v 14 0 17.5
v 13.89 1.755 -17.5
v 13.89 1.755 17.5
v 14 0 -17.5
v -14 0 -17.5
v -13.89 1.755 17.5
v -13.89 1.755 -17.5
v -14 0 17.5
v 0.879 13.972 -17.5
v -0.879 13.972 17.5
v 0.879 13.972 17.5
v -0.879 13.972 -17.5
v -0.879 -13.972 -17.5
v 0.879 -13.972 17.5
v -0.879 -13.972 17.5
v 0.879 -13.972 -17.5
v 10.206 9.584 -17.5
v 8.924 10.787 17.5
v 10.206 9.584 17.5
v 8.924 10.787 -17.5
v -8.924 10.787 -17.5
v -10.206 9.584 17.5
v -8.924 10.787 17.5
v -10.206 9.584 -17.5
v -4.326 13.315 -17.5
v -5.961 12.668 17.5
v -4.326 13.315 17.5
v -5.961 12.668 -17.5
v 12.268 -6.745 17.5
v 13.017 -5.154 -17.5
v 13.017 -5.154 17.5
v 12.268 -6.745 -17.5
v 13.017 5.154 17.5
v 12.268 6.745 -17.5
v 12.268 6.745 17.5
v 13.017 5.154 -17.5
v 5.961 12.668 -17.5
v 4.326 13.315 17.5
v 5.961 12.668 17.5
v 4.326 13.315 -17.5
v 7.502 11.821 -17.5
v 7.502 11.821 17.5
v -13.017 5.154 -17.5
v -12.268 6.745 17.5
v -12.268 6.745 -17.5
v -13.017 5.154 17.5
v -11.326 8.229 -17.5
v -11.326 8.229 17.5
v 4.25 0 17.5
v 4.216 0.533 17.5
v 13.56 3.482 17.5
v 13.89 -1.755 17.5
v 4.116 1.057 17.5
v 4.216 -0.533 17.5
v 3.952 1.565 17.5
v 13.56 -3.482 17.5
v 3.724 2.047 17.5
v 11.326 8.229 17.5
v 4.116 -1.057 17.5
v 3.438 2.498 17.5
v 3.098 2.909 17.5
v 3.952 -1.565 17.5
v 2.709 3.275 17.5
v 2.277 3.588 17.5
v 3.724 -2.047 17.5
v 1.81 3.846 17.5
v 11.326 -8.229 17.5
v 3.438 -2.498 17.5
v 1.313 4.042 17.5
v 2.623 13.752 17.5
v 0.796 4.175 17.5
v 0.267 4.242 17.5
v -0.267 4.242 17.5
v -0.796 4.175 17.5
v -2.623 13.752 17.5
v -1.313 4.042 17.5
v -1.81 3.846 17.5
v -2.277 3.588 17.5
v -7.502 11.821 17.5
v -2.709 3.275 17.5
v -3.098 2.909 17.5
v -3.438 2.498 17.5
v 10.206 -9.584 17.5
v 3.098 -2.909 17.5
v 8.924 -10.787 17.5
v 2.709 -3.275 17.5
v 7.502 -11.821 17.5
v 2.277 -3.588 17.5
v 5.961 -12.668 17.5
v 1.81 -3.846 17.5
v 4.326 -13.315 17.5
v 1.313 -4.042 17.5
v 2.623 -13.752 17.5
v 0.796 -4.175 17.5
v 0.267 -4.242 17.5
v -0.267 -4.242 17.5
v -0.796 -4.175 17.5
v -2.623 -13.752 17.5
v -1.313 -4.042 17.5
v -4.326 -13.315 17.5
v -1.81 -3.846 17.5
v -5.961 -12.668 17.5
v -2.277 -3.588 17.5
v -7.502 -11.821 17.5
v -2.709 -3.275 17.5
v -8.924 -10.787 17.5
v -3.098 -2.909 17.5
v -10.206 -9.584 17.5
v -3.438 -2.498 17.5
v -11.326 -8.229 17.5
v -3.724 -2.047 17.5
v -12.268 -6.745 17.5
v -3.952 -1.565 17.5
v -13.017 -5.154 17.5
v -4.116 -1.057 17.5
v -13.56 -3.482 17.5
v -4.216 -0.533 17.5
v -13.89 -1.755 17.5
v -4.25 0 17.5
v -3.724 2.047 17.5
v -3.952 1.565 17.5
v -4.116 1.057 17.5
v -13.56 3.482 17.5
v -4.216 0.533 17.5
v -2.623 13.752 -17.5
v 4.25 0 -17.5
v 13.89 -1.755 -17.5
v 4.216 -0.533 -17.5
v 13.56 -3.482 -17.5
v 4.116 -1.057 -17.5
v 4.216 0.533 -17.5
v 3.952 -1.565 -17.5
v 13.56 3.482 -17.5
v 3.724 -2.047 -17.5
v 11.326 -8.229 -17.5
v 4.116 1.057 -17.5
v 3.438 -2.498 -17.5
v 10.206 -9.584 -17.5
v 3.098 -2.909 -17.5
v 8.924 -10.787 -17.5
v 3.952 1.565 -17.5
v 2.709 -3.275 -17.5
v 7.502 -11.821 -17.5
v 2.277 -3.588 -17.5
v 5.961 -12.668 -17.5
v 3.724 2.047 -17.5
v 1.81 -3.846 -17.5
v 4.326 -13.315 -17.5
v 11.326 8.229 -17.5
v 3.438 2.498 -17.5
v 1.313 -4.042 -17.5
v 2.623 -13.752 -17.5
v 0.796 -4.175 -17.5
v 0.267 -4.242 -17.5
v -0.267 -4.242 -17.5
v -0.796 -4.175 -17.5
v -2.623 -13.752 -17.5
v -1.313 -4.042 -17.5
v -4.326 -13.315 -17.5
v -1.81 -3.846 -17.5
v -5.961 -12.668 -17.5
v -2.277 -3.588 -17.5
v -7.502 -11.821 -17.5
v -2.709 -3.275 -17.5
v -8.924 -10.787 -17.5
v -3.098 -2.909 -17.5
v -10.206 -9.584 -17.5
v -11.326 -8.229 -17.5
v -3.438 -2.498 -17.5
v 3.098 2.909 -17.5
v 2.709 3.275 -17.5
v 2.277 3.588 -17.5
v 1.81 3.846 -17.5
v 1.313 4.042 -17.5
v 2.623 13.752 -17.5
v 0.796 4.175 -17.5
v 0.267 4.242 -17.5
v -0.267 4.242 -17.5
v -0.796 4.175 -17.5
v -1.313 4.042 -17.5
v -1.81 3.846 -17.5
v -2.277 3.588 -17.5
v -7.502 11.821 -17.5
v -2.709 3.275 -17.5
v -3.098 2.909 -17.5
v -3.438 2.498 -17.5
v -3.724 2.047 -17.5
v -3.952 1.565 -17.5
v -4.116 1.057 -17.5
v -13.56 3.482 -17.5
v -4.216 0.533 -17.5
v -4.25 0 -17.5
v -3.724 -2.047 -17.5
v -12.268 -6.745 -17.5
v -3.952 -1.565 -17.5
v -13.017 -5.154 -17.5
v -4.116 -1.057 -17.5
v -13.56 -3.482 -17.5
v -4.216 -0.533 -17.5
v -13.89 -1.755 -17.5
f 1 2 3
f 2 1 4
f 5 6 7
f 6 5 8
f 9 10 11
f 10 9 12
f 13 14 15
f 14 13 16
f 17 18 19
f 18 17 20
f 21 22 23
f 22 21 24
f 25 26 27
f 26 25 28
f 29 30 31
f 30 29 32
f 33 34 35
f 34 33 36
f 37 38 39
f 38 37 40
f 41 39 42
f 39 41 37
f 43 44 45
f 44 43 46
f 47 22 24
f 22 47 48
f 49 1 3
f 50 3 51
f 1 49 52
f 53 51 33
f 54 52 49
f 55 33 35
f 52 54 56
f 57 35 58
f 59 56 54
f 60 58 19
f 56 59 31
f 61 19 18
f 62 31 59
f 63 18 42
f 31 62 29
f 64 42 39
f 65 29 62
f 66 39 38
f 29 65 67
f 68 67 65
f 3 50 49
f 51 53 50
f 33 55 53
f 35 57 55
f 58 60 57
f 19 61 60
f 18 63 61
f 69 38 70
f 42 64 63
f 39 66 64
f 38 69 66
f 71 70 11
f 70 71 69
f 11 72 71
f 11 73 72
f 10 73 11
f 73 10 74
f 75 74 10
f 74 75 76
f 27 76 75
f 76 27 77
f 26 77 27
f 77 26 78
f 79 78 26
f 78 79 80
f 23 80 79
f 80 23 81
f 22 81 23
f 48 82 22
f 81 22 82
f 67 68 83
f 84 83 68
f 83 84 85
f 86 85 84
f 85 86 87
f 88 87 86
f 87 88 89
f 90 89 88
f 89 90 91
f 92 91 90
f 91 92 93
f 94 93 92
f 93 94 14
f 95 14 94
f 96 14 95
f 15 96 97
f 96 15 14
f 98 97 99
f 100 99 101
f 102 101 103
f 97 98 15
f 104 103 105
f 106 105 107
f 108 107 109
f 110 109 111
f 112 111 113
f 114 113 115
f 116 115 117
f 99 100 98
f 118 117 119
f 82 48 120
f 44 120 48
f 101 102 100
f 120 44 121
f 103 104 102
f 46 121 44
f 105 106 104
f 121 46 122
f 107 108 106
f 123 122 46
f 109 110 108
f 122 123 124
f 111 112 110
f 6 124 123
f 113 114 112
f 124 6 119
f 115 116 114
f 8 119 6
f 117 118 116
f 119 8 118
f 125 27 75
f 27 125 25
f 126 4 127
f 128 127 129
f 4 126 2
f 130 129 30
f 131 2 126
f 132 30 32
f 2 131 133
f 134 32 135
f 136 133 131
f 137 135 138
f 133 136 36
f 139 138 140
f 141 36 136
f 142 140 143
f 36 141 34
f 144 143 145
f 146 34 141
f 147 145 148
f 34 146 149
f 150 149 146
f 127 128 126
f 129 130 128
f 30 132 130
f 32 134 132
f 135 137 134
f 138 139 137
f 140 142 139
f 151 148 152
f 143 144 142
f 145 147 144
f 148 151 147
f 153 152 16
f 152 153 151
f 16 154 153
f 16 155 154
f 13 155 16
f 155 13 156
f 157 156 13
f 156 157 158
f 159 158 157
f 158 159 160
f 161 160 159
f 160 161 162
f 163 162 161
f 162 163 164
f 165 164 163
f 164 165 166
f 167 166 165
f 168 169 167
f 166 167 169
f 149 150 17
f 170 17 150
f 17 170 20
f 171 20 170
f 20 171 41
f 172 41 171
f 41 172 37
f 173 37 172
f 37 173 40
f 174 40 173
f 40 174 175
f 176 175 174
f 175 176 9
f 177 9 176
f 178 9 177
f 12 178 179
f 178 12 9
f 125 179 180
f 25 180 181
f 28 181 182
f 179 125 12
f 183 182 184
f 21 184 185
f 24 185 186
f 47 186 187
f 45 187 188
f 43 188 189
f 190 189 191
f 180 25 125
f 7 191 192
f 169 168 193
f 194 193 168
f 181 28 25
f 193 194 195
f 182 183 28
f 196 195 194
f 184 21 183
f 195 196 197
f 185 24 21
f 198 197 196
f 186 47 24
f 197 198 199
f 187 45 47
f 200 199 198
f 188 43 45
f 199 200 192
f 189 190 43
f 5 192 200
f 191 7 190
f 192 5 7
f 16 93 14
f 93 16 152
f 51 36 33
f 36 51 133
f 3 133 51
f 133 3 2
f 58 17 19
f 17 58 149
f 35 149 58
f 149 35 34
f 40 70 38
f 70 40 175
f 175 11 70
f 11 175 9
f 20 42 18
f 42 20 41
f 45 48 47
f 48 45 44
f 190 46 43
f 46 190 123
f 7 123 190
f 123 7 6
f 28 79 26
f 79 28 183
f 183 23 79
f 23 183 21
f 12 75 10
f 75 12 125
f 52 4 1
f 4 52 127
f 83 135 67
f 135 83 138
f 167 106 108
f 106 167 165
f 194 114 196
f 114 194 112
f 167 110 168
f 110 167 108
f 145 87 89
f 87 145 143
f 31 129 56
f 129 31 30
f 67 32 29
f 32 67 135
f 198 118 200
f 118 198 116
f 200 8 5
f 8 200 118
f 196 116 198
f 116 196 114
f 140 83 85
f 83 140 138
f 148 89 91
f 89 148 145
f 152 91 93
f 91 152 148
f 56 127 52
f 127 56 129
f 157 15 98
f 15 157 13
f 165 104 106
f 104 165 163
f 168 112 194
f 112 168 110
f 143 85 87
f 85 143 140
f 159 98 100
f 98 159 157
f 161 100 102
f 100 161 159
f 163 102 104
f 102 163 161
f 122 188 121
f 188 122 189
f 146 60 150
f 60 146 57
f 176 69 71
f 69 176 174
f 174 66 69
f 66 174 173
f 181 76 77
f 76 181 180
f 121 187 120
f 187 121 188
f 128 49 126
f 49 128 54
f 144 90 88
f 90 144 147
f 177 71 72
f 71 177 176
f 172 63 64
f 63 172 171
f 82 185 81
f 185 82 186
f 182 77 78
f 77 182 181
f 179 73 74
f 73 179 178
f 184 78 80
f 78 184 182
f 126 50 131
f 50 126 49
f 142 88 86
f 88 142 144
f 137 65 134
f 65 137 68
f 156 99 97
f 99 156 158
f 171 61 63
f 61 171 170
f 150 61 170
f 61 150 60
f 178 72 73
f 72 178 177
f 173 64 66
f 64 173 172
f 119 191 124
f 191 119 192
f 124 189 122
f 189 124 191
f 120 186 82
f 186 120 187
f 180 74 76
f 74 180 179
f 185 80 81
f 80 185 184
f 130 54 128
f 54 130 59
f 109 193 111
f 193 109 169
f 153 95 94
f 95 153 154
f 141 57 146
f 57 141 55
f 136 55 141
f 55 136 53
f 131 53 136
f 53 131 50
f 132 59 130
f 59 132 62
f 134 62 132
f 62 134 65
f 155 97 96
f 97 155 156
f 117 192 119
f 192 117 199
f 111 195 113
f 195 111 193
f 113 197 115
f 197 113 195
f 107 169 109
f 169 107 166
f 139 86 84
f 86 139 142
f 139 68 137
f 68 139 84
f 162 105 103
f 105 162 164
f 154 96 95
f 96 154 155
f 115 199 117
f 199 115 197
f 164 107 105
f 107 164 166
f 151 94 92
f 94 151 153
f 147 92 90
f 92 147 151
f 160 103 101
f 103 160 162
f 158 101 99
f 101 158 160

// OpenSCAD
$fn = 50;


difference() {
	union() {
		translate(v = [0, 0, -17.5000000000]) {
			cylinder(h = 35, r = 14.0000000000);
		}
	}
	union() {
		translate(v = [0, 0, -100.0000000000]) {
			cylinder(h = 200, r = 4.2500000000);
		}
	}
}
